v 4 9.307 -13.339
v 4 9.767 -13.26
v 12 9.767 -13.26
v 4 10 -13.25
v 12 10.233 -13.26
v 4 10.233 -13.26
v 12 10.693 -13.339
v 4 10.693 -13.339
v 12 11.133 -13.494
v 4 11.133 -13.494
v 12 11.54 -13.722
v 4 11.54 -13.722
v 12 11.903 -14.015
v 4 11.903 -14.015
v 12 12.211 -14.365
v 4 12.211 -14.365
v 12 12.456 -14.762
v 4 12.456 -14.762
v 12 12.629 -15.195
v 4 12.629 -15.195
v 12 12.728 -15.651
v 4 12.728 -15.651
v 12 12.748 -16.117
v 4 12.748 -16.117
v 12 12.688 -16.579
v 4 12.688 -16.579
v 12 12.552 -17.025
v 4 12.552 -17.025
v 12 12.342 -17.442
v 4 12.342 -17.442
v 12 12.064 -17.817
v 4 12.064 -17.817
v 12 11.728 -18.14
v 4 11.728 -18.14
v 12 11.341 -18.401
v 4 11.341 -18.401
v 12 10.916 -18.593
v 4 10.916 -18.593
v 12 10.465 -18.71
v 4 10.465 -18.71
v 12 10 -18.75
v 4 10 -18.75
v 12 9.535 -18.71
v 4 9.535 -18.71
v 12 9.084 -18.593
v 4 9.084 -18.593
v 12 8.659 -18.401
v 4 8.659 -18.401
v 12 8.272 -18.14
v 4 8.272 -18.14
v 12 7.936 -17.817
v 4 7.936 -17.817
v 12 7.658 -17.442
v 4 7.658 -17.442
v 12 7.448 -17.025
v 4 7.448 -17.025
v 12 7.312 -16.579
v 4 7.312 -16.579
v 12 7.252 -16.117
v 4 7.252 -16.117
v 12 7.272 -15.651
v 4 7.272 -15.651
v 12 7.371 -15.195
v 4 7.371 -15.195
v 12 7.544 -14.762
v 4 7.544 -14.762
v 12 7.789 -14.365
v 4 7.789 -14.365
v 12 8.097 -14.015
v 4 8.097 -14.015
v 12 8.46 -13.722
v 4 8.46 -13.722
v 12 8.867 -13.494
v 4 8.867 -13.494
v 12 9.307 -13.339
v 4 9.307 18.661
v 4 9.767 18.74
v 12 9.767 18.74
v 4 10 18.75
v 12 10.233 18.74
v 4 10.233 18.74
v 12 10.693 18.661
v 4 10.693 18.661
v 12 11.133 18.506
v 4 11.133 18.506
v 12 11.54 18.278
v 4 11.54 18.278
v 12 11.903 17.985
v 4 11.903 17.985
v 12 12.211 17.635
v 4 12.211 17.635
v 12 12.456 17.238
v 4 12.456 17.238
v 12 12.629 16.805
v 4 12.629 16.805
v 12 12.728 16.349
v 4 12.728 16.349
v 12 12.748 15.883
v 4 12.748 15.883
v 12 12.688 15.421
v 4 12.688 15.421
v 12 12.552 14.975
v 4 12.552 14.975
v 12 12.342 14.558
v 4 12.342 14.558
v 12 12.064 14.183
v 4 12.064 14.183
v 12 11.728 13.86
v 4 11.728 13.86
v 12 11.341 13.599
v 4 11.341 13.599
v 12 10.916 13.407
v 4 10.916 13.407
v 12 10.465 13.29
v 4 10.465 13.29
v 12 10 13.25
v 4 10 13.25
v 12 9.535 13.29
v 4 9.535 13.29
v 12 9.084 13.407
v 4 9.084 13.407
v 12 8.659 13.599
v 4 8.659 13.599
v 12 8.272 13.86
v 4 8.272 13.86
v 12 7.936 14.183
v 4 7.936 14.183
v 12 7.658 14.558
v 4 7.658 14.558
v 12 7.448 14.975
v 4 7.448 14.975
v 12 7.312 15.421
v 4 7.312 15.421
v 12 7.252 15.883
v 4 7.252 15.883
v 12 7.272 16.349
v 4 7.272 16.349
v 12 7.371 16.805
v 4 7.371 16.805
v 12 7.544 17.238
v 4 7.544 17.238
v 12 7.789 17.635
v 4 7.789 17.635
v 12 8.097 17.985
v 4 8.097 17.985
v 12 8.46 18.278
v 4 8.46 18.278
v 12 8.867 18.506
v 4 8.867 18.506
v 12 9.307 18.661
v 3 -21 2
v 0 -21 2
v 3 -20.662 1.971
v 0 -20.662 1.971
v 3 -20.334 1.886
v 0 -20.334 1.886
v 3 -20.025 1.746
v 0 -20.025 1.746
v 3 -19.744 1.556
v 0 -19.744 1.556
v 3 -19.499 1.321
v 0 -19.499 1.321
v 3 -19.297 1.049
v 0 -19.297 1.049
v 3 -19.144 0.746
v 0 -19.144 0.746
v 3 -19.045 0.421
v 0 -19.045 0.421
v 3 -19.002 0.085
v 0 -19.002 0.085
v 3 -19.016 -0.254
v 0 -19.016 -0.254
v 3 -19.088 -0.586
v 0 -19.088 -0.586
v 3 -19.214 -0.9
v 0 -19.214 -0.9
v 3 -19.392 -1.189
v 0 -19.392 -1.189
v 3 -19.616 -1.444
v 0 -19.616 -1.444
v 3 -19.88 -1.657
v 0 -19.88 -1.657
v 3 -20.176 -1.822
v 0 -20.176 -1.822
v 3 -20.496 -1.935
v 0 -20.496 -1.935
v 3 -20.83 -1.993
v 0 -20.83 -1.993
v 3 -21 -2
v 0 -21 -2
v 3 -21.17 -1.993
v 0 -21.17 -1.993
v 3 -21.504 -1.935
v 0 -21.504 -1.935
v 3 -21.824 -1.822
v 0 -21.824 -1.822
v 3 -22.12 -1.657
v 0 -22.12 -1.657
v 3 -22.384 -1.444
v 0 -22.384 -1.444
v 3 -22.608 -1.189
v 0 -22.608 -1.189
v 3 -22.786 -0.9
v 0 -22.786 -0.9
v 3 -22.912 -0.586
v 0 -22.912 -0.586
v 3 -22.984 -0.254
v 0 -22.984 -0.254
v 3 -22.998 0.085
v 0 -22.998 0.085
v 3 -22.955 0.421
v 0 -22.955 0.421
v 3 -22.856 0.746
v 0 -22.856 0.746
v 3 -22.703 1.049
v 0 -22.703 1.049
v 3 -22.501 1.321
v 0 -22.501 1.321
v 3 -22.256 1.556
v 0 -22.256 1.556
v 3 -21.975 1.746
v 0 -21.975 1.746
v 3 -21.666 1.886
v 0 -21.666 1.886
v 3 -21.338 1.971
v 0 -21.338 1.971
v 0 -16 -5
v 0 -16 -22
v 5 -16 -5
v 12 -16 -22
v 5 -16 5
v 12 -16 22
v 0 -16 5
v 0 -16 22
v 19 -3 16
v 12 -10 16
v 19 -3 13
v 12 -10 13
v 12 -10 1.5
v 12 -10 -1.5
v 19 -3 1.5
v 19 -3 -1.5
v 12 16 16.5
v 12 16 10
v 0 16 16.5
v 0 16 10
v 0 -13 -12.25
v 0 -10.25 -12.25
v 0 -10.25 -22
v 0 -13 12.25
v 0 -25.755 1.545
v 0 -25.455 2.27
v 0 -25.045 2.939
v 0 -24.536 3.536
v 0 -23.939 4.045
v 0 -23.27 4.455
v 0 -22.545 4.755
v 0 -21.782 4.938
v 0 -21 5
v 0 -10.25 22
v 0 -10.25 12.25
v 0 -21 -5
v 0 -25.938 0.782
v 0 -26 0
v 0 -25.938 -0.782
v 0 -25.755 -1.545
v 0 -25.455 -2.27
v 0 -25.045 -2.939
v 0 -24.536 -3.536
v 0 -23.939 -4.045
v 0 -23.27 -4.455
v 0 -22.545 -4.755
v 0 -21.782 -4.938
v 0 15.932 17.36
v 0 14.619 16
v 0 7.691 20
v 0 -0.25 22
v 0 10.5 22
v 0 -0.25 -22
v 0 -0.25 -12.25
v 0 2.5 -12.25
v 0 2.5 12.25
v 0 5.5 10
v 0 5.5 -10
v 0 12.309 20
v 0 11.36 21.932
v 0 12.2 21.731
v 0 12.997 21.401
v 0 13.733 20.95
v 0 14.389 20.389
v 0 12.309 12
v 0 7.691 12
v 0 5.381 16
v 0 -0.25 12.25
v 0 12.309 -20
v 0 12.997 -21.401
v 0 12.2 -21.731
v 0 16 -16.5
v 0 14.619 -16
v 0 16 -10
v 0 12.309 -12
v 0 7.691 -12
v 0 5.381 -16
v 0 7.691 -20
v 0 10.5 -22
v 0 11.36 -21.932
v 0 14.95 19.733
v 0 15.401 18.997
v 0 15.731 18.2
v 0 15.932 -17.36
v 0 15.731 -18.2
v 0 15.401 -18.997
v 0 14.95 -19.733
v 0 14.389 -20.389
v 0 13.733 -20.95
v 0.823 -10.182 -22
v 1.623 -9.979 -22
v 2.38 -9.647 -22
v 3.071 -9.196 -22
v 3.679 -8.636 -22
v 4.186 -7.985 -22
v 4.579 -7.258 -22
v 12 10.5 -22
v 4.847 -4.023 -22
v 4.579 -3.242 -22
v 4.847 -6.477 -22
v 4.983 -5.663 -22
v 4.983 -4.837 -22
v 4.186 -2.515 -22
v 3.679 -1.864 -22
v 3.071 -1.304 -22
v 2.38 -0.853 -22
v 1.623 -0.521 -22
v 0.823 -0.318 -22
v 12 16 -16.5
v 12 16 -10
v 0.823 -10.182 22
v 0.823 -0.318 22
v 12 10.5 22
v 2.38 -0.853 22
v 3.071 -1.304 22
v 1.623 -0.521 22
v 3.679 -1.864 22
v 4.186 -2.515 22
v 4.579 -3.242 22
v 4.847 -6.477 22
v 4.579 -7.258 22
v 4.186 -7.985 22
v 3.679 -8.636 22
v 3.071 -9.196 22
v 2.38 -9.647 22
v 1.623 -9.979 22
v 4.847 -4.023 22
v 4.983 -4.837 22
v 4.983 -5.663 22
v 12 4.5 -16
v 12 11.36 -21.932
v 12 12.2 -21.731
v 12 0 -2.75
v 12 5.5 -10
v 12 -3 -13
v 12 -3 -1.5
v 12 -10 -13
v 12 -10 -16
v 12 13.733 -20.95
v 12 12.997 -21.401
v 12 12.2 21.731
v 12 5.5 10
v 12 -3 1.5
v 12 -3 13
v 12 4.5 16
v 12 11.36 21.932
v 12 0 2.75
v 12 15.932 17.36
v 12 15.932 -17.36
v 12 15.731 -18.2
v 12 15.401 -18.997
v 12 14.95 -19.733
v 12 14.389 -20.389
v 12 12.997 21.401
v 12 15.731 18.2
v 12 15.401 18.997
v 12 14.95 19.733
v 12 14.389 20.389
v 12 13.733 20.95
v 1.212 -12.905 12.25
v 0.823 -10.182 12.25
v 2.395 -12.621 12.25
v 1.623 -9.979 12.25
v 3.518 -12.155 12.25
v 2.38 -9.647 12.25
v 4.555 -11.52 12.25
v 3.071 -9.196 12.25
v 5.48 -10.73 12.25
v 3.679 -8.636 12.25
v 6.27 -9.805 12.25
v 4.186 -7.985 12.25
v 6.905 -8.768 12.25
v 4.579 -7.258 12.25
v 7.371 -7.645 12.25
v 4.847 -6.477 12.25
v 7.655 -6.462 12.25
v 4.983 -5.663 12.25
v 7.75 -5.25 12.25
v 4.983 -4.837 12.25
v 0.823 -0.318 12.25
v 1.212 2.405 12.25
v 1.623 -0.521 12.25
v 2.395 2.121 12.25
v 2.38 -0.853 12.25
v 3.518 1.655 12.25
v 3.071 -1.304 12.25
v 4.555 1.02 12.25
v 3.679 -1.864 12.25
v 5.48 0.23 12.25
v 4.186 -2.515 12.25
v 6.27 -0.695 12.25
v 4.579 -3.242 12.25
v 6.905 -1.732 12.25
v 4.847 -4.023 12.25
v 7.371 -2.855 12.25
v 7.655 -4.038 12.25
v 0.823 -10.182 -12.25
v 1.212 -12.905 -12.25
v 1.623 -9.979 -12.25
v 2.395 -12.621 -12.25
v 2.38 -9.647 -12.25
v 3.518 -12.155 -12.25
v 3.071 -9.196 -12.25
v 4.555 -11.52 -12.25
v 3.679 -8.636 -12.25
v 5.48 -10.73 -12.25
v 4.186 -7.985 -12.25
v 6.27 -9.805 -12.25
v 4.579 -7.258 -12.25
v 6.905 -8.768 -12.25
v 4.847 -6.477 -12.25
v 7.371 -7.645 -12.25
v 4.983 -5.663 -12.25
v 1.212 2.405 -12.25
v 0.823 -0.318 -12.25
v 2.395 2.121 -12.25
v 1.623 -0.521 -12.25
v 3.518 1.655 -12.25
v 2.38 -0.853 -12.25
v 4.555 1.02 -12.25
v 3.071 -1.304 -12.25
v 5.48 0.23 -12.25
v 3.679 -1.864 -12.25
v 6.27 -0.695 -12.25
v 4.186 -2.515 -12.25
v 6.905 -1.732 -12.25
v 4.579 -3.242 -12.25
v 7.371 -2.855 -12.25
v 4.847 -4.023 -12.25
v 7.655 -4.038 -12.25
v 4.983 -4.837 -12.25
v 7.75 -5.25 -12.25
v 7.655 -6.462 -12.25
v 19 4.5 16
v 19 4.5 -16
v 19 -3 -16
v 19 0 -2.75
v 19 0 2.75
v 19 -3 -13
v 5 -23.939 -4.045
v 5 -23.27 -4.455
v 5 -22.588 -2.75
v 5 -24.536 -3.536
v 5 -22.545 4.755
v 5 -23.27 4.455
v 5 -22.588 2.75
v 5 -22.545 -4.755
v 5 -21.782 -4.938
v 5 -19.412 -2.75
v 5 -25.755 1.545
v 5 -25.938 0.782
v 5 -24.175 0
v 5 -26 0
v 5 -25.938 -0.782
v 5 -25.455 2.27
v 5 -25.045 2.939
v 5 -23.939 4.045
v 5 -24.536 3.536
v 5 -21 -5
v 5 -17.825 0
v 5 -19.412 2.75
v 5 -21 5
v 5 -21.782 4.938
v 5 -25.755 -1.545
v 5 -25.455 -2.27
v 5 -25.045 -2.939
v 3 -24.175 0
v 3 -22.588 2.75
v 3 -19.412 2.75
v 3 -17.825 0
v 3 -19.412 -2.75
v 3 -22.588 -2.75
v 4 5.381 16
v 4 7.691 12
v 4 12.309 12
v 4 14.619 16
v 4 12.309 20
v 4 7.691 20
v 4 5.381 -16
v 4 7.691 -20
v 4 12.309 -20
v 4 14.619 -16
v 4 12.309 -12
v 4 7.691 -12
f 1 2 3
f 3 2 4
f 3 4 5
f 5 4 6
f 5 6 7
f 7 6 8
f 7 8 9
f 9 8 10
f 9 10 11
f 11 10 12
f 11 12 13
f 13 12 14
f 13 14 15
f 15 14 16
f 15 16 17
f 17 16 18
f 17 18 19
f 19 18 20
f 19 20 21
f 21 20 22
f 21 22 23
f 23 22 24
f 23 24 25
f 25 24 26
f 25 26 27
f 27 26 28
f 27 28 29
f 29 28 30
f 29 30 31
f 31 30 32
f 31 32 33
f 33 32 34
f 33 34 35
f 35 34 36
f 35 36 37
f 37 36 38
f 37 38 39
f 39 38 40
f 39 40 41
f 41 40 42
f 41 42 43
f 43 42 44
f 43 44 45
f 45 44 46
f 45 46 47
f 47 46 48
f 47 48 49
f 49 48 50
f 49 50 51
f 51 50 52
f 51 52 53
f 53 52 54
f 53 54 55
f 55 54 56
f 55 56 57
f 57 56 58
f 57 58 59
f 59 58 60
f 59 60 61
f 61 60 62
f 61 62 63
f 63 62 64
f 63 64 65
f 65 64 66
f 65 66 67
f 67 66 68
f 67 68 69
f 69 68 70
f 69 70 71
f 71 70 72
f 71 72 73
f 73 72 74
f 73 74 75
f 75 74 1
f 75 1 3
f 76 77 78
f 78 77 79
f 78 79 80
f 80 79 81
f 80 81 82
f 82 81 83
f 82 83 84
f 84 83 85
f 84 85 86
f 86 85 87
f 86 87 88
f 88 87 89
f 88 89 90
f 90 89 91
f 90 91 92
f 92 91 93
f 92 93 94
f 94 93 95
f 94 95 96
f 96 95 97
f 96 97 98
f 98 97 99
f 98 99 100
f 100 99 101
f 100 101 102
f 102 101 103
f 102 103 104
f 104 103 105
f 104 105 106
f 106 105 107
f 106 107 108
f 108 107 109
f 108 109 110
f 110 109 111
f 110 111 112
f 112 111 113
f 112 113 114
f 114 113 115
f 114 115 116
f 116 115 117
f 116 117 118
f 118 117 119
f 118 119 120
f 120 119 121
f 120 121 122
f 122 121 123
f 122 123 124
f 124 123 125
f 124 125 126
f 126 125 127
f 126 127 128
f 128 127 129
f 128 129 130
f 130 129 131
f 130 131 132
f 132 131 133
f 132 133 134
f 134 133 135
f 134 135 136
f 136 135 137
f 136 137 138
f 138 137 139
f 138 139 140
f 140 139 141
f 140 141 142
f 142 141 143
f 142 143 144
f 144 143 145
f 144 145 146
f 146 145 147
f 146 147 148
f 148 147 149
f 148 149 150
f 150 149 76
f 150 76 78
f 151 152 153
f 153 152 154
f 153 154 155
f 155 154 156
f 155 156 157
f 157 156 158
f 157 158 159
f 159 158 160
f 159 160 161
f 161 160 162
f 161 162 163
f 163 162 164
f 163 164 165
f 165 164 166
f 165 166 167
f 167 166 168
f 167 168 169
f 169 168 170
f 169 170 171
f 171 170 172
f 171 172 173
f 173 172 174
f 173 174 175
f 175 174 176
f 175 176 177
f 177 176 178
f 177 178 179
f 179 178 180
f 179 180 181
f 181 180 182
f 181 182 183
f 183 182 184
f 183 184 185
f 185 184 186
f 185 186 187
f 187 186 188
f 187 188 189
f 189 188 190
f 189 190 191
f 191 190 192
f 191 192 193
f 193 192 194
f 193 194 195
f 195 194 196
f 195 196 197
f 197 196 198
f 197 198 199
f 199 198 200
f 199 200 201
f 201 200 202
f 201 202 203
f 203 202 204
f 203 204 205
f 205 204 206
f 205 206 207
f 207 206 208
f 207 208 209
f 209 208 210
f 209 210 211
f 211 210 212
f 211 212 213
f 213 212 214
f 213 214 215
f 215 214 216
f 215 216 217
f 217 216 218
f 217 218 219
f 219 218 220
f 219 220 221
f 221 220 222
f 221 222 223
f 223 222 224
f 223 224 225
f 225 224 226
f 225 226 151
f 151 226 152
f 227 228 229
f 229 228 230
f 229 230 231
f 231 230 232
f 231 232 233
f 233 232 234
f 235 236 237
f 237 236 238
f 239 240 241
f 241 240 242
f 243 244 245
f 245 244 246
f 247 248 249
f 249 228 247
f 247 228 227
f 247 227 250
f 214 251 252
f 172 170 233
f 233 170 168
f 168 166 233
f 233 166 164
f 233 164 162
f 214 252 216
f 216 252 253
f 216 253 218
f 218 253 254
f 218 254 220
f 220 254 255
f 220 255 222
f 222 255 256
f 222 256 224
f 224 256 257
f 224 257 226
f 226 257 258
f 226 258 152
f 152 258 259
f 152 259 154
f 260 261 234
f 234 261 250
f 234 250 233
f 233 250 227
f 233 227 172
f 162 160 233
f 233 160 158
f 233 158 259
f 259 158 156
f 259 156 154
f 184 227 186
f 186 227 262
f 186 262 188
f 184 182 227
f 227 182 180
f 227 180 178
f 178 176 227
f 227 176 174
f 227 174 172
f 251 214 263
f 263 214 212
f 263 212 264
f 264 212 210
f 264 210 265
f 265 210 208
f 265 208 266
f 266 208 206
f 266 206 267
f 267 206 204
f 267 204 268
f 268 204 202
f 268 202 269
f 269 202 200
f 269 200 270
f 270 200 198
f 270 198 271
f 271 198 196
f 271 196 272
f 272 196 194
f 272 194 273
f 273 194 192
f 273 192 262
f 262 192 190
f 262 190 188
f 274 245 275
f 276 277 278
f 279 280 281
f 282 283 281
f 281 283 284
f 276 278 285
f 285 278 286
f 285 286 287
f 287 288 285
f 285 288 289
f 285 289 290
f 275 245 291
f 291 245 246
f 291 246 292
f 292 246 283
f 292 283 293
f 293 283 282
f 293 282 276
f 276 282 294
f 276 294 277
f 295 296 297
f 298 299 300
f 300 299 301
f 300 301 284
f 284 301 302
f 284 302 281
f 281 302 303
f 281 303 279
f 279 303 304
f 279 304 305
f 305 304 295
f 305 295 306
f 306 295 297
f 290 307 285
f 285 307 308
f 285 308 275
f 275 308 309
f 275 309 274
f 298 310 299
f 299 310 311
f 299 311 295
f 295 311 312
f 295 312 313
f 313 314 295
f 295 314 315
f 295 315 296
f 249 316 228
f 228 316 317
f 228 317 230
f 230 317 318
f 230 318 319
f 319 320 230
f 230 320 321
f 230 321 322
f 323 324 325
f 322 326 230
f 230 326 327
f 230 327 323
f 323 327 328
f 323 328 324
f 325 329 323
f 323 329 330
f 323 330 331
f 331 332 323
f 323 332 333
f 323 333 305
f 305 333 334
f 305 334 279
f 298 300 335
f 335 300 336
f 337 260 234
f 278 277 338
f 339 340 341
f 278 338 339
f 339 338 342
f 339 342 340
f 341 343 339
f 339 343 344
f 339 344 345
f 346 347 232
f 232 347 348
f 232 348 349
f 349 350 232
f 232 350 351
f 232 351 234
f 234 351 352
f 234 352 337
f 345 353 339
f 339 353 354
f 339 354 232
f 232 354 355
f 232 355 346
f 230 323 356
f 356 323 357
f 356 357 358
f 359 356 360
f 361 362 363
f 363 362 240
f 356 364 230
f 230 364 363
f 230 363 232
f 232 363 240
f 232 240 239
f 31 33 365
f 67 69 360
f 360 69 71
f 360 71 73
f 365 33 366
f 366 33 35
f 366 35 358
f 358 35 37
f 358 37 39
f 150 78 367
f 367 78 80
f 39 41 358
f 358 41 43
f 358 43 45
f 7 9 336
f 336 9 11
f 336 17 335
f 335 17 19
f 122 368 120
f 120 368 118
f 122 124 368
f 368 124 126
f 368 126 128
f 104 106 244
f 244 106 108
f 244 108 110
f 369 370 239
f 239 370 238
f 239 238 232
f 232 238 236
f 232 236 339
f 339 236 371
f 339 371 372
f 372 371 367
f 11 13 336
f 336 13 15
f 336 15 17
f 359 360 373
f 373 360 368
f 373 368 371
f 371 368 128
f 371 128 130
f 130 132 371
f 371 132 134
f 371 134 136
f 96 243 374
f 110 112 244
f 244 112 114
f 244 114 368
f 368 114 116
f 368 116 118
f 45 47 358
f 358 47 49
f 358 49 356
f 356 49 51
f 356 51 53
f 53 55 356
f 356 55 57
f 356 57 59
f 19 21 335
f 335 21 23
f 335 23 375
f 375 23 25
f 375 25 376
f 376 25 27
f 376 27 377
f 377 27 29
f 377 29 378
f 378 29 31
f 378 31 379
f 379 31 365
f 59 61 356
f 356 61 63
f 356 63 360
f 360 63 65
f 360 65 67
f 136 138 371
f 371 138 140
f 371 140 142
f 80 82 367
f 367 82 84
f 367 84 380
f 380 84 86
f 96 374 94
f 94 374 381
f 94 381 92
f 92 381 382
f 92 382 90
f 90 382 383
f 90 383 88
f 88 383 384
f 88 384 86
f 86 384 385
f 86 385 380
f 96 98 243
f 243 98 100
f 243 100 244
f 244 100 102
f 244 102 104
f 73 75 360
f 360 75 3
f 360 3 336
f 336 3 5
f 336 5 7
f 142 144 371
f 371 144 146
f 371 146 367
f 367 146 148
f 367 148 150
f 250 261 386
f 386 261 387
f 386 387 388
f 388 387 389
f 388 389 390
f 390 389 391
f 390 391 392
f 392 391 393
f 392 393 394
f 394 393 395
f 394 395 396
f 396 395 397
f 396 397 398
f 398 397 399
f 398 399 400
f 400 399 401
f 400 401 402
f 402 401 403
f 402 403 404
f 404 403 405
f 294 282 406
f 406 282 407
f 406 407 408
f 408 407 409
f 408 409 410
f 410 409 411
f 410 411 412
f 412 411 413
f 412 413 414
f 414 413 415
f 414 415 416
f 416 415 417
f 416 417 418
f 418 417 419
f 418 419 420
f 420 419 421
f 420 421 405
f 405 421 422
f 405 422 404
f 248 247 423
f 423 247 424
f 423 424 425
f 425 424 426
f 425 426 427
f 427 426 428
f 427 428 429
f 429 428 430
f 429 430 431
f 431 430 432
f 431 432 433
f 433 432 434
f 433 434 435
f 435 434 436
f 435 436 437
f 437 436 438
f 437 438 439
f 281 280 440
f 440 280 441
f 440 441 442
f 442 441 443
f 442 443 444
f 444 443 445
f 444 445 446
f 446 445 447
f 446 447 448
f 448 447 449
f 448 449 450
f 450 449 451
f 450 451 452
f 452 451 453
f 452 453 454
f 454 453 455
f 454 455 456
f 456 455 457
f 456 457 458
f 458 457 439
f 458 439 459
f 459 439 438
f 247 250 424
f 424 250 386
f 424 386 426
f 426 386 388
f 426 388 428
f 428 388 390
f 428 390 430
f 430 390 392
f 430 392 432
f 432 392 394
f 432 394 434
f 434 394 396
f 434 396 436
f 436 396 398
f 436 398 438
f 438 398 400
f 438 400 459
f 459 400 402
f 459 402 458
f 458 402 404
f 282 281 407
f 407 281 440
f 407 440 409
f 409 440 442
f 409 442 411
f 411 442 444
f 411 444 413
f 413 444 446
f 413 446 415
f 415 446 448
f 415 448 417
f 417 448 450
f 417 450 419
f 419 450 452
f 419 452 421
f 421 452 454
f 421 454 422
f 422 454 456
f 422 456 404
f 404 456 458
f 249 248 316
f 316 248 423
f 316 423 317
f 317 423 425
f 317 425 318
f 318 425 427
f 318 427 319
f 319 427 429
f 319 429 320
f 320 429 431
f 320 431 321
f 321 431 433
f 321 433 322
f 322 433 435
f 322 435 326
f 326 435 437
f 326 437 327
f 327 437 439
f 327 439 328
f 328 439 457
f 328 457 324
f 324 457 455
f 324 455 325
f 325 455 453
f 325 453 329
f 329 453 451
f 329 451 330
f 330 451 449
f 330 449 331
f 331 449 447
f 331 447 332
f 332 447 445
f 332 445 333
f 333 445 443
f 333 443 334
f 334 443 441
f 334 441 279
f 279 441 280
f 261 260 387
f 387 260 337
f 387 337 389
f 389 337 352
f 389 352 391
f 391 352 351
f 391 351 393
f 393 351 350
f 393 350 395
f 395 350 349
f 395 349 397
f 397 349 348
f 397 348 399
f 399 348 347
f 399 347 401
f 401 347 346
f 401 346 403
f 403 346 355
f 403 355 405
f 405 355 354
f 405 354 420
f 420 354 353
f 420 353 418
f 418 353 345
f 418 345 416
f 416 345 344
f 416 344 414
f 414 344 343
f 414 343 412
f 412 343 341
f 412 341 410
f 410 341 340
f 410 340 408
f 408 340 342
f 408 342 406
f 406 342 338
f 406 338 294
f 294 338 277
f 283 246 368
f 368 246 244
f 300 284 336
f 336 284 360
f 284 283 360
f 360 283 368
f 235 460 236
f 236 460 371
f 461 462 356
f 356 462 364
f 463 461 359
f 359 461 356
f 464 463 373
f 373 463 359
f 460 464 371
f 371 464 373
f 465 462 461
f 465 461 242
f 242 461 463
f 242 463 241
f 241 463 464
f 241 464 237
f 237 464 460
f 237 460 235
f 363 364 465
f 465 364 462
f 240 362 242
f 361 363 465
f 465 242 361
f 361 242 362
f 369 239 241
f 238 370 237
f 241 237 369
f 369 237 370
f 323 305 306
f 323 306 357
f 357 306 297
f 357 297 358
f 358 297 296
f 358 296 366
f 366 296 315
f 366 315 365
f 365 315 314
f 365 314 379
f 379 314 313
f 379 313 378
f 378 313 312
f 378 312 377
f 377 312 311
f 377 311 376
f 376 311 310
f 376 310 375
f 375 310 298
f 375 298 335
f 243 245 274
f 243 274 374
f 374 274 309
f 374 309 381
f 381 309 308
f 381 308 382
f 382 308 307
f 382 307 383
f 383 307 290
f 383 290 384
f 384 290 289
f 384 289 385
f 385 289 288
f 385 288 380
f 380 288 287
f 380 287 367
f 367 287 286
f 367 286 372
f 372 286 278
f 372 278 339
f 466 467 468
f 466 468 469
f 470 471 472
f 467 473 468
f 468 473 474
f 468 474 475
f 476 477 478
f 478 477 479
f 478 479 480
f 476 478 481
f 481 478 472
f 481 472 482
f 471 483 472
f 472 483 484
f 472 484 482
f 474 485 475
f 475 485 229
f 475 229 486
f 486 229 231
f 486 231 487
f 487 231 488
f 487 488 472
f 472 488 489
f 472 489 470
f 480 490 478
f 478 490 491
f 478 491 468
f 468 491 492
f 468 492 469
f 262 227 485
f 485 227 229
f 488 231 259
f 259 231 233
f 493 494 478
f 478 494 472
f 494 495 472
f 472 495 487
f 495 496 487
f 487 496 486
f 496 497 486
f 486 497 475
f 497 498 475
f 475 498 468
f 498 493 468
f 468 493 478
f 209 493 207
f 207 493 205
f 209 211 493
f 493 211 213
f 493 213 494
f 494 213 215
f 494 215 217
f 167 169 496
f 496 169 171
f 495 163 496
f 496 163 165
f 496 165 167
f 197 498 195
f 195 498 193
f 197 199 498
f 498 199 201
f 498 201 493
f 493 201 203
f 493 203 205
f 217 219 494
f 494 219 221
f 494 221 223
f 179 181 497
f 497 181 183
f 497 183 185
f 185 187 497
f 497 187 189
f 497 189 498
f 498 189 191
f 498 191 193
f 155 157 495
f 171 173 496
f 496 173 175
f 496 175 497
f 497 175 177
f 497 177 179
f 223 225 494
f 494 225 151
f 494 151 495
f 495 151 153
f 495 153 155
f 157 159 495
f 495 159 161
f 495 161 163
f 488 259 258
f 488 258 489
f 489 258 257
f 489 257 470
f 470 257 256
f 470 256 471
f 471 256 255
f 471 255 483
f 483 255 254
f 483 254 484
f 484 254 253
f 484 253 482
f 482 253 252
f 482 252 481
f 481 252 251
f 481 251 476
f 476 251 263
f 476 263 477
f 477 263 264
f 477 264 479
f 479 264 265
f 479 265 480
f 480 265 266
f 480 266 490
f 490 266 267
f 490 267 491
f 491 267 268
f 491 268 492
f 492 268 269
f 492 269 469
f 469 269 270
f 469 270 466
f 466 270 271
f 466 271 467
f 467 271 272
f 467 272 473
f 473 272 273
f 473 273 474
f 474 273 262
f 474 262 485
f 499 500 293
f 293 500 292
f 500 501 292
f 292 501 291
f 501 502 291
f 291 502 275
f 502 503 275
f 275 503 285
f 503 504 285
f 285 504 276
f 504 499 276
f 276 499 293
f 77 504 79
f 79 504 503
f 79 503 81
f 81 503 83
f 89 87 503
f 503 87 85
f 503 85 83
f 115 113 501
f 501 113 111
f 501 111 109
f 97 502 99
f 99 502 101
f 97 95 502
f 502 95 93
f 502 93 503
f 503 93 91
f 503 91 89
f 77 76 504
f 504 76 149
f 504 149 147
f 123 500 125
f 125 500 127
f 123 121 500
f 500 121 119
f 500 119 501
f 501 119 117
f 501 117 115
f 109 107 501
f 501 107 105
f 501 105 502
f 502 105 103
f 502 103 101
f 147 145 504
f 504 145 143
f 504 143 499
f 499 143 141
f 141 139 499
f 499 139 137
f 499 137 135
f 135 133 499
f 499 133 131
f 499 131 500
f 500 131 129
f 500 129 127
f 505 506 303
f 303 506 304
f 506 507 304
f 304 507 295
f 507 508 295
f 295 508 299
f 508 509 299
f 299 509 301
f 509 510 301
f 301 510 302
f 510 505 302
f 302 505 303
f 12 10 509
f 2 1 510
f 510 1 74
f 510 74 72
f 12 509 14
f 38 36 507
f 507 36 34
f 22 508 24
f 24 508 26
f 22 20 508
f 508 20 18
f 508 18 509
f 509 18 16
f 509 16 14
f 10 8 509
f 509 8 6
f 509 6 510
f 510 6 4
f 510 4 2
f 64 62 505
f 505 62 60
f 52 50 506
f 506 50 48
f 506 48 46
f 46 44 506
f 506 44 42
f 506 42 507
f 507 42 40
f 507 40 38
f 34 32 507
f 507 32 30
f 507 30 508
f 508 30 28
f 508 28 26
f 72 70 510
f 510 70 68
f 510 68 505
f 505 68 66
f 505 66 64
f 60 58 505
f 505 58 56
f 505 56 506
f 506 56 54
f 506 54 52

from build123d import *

# Parameters (mm, degrees)
SKETCH1_W               = 44
SKETCH1_H               = 32
BOSS_EXTRUDE1_DEPTH     = 12
SKETCH2_W               = 24.5
SKETCH2_H               = 15.5
CUT_EXTRUDE1_DEPTH      = 7.75
FILLET1_R               = 7.75
CUT_EXTRUDE2_DEPTH      = 40.661851949
CUT_EXTRUDE2_DEPTH_BACK = 40.661851949
SKETCH4_R               = 2.75
SKETCH4_W               = 20
SKETCH4_H               = 10.5
CUT_EXTRUDE3_DEPTH      = 30.732137495
SKETCH5_W               = 5.5
SKETCH5_H               = 3
BOSS_EXTRUDE4_DEPTH     = 7
CHAMFER1_SIZE           = 7
SKETCH6_W               = 11.5
SKETCH6_H               = 7
CUT_EXTRUDE5_DEPTH      = 30.732137495
FILLET4_R               = 5.5
SKETCH7_W               = 10
SKETCH7_H               = 10
SKETCH7_R               = 2
BOSS_EXTRUDE5_DEPTH     = 5
CUT_EXTRUDE6_START      = -2
SKETCH8_R               = 2
CUT_EXTRUDE6_DEPTH      = 2
FILLET5_R               = 5
CUT_EXTRUDE7_START      = -4
SKETCH9_R               = 2.75
CUT_EXTRUDE7_DEPTH      = 4


with BuildPart() as part:
    # Sketch1 → Boss-Extrude1 (new body)
    with BuildSketch(Plane(origin=(0, 0, 0), x_dir=(0, 0, -1), z_dir=(1, 0, 0))):
        Rectangle(SKETCH1_W, SKETCH1_H)
    extrude(amount=BOSS_EXTRUDE1_DEPTH)

    # Sketch2 → Cut-Extrude1 (cut)
    with BuildSketch(Plane(origin=(0, 0, 0), x_dir=(0, 0, -1), z_dir=(1, 0, 0))):
        with Locations((0, -5.25)):
            Rectangle(SKETCH2_W, SKETCH2_H)
    extrude(amount=CUT_EXTRUDE1_DEPTH, mode=Mode.SUBTRACT)

    # Fillet1
    fillet1_edges = [part.edges().sort_by_distance(p)[0] for p in [
        (7.75, 2.5, 0),
        (7.75, -13, 0),
    ]]
    fillet(fillet1_edges, radius=FILLET1_R - 0.0001)  # a hair under: the kernel refuses the full size

    # Sketch3 → Cut-Extrude2 (cut, two sides: drawn at the far end of the back side and taken through both)
    with BuildSketch(Plane.XY.offset(-12.25).offset(-CUT_EXTRUDE2_DEPTH_BACK)):
        with BuildLine():
            ThreePointArc((0, -10.25), (3.535533906, -8.785533906), (5, -5.25))
            ThreePointArc((5, -5.25), (3.535533906, -1.714466094), (0, -0.25))
            Line((0, -0.25), (0, -10.25))
        make_face()
        with BuildLine():
            Line((0, -10.25), (0, -0.25))
            ThreePointArc((0, -0.25), (-5, -5.25), (0, -10.25))
        make_face()
    extrude(amount=CUT_EXTRUDE2_DEPTH + CUT_EXTRUDE2_DEPTH_BACK, mode=Mode.SUBTRACT)

    # Sketch4 → Cut-Extrude3 (cut, through all)
    with BuildSketch(Plane(origin=(12, 0, 0), x_dir=(0, 0, -1), z_dir=(1, 0, 0))):
        with Locations((-16, 10)):
            Circle(SKETCH4_R)
        with Locations((16, 10)):
            Circle(SKETCH4_R)
        with Locations((0, 10.75)):
            Rectangle(SKETCH4_W, SKETCH4_H)
    extrude(amount=-CUT_EXTRUDE3_DEPTH, mode=Mode.SUBTRACT)

    # Sketch5 → Boss-Extrude4 (add)
    with BuildSketch(Plane(origin=(12, 0, 0), x_dir=(0, 0, -1), z_dir=(1, 0, 0))):
        Polygon((-16, -3), (-16, 4.5), (-2.75, -3), align=None)
        Polygon((-2.75, -3), (-16, 4.5), (-2.75, 0), align=None)
        with Locations((0, -1.5)):
            Rectangle(SKETCH5_W, SKETCH5_H)
        Polygon((2.75, -3), (2.75, 0), (16, 4.5), align=None)
        Polygon((16, -3), (2.75, -3), (16, 4.5), align=None)
    extrude(amount=BOSS_EXTRUDE4_DEPTH)

    # Chamfer1
    chamfer1_edges = [part.edges().sort_by_distance(p)[0] for p in [
        (12, -3, 0),
    ]]
    chamfer(chamfer1_edges, length=CHAMFER1_SIZE - 0.0001)  # a hair under: the kernel refuses the full size

    # Sketch6 → Cut-Extrude5 (cut, through all)
    with BuildSketch(Plane(origin=(12, 0, 0), x_dir=(0, 0, -1), z_dir=(1, 0, 0))):
        with Locations((-7.25, -6.5)):
            Rectangle(SKETCH6_W, SKETCH6_H)
        with Locations((7.25, -6.5)):
            Rectangle(SKETCH6_W, SKETCH6_H)
    extrude(amount=CUT_EXTRUDE5_DEPTH, mode=Mode.SUBTRACT)

    # Fillet4
    fillet4_edges = [part.edges().sort_by_distance(p)[0] for p in [
        (6, 16, 22),
        (6, 16, -22),
    ]]
    fillet(fillet4_edges, radius=FILLET4_R)

    # Sketch7 → Boss-Extrude5 (add)
    with BuildSketch(Plane(origin=(0, 0, 0), x_dir=(0, 0, -1), z_dir=(1, 0, 0))):
        with Locations((0, -21)):
            Rectangle(SKETCH7_W, SKETCH7_H)
        with Locations((0, -21)):
            Circle(SKETCH7_R, mode=Mode.SUBTRACT)
    extrude(amount=BOSS_EXTRUDE5_DEPTH)

    # Sketch8 → Cut-Extrude6 (cut)
    with BuildSketch(Plane(origin=(5, 0, 0), x_dir=(0, 0, -1), z_dir=(1, 0, 0)).offset(CUT_EXTRUDE6_START)):
        Polygon((0, -24.175426481), (2.75, -22.58771324), (2.75, -19.41228676), (0, -17.824573519), (-2.75, -19.41228676), (-2.75, -22.58771324), align=None)
        with Locations((0, -21)):
            Circle(SKETCH8_R, mode=Mode.SUBTRACT)
    extrude(amount=CUT_EXTRUDE6_DEPTH, mode=Mode.SUBTRACT)

    # Fillet5
    fillet5_edges = [part.edges().sort_by_distance(p)[0] for p in [
        (2.5, -26, -5),
        (2.5, -26, 5),
    ]]
    fillet(fillet5_edges, radius=FILLET5_R - 0.0001)  # a hair under: the kernel refuses the full size

    # Sketch9 → Cut-Extrude7 (cut)
    # profile 1 of 2: a face of its own
    with BuildSketch(Plane.ZY.offset(CUT_EXTRUDE7_START)):
        Polygon((-16, 5.381197846), (-12, 7.690598923), (-12, 12.309401077), (-16, 14.618802154), (-20, 12.309401077), (-20, 7.690598923), align=None)
        with Locations(Location((-16, 10, 0), (0, 0, 180))):
            Circle(SKETCH9_R, mode=Mode.SUBTRACT)
    # profile 2 of 2: a face of its own
    with BuildSketch(Plane.ZY.offset(CUT_EXTRUDE7_START)):
        Polygon((16, 5.381197846), (20, 7.690598923), (20, 12.309401077), (16, 14.618802154), (12, 12.309401077), (12, 7.690598923), align=None)
        with Locations(Location((16, 10, 0), (0, 0, 180))):
            Circle(SKETCH9_R, mode=Mode.SUBTRACT)
    extrude(amount=CUT_EXTRUDE7_DEPTH, mode=Mode.SUBTRACT)


solid = part.part
